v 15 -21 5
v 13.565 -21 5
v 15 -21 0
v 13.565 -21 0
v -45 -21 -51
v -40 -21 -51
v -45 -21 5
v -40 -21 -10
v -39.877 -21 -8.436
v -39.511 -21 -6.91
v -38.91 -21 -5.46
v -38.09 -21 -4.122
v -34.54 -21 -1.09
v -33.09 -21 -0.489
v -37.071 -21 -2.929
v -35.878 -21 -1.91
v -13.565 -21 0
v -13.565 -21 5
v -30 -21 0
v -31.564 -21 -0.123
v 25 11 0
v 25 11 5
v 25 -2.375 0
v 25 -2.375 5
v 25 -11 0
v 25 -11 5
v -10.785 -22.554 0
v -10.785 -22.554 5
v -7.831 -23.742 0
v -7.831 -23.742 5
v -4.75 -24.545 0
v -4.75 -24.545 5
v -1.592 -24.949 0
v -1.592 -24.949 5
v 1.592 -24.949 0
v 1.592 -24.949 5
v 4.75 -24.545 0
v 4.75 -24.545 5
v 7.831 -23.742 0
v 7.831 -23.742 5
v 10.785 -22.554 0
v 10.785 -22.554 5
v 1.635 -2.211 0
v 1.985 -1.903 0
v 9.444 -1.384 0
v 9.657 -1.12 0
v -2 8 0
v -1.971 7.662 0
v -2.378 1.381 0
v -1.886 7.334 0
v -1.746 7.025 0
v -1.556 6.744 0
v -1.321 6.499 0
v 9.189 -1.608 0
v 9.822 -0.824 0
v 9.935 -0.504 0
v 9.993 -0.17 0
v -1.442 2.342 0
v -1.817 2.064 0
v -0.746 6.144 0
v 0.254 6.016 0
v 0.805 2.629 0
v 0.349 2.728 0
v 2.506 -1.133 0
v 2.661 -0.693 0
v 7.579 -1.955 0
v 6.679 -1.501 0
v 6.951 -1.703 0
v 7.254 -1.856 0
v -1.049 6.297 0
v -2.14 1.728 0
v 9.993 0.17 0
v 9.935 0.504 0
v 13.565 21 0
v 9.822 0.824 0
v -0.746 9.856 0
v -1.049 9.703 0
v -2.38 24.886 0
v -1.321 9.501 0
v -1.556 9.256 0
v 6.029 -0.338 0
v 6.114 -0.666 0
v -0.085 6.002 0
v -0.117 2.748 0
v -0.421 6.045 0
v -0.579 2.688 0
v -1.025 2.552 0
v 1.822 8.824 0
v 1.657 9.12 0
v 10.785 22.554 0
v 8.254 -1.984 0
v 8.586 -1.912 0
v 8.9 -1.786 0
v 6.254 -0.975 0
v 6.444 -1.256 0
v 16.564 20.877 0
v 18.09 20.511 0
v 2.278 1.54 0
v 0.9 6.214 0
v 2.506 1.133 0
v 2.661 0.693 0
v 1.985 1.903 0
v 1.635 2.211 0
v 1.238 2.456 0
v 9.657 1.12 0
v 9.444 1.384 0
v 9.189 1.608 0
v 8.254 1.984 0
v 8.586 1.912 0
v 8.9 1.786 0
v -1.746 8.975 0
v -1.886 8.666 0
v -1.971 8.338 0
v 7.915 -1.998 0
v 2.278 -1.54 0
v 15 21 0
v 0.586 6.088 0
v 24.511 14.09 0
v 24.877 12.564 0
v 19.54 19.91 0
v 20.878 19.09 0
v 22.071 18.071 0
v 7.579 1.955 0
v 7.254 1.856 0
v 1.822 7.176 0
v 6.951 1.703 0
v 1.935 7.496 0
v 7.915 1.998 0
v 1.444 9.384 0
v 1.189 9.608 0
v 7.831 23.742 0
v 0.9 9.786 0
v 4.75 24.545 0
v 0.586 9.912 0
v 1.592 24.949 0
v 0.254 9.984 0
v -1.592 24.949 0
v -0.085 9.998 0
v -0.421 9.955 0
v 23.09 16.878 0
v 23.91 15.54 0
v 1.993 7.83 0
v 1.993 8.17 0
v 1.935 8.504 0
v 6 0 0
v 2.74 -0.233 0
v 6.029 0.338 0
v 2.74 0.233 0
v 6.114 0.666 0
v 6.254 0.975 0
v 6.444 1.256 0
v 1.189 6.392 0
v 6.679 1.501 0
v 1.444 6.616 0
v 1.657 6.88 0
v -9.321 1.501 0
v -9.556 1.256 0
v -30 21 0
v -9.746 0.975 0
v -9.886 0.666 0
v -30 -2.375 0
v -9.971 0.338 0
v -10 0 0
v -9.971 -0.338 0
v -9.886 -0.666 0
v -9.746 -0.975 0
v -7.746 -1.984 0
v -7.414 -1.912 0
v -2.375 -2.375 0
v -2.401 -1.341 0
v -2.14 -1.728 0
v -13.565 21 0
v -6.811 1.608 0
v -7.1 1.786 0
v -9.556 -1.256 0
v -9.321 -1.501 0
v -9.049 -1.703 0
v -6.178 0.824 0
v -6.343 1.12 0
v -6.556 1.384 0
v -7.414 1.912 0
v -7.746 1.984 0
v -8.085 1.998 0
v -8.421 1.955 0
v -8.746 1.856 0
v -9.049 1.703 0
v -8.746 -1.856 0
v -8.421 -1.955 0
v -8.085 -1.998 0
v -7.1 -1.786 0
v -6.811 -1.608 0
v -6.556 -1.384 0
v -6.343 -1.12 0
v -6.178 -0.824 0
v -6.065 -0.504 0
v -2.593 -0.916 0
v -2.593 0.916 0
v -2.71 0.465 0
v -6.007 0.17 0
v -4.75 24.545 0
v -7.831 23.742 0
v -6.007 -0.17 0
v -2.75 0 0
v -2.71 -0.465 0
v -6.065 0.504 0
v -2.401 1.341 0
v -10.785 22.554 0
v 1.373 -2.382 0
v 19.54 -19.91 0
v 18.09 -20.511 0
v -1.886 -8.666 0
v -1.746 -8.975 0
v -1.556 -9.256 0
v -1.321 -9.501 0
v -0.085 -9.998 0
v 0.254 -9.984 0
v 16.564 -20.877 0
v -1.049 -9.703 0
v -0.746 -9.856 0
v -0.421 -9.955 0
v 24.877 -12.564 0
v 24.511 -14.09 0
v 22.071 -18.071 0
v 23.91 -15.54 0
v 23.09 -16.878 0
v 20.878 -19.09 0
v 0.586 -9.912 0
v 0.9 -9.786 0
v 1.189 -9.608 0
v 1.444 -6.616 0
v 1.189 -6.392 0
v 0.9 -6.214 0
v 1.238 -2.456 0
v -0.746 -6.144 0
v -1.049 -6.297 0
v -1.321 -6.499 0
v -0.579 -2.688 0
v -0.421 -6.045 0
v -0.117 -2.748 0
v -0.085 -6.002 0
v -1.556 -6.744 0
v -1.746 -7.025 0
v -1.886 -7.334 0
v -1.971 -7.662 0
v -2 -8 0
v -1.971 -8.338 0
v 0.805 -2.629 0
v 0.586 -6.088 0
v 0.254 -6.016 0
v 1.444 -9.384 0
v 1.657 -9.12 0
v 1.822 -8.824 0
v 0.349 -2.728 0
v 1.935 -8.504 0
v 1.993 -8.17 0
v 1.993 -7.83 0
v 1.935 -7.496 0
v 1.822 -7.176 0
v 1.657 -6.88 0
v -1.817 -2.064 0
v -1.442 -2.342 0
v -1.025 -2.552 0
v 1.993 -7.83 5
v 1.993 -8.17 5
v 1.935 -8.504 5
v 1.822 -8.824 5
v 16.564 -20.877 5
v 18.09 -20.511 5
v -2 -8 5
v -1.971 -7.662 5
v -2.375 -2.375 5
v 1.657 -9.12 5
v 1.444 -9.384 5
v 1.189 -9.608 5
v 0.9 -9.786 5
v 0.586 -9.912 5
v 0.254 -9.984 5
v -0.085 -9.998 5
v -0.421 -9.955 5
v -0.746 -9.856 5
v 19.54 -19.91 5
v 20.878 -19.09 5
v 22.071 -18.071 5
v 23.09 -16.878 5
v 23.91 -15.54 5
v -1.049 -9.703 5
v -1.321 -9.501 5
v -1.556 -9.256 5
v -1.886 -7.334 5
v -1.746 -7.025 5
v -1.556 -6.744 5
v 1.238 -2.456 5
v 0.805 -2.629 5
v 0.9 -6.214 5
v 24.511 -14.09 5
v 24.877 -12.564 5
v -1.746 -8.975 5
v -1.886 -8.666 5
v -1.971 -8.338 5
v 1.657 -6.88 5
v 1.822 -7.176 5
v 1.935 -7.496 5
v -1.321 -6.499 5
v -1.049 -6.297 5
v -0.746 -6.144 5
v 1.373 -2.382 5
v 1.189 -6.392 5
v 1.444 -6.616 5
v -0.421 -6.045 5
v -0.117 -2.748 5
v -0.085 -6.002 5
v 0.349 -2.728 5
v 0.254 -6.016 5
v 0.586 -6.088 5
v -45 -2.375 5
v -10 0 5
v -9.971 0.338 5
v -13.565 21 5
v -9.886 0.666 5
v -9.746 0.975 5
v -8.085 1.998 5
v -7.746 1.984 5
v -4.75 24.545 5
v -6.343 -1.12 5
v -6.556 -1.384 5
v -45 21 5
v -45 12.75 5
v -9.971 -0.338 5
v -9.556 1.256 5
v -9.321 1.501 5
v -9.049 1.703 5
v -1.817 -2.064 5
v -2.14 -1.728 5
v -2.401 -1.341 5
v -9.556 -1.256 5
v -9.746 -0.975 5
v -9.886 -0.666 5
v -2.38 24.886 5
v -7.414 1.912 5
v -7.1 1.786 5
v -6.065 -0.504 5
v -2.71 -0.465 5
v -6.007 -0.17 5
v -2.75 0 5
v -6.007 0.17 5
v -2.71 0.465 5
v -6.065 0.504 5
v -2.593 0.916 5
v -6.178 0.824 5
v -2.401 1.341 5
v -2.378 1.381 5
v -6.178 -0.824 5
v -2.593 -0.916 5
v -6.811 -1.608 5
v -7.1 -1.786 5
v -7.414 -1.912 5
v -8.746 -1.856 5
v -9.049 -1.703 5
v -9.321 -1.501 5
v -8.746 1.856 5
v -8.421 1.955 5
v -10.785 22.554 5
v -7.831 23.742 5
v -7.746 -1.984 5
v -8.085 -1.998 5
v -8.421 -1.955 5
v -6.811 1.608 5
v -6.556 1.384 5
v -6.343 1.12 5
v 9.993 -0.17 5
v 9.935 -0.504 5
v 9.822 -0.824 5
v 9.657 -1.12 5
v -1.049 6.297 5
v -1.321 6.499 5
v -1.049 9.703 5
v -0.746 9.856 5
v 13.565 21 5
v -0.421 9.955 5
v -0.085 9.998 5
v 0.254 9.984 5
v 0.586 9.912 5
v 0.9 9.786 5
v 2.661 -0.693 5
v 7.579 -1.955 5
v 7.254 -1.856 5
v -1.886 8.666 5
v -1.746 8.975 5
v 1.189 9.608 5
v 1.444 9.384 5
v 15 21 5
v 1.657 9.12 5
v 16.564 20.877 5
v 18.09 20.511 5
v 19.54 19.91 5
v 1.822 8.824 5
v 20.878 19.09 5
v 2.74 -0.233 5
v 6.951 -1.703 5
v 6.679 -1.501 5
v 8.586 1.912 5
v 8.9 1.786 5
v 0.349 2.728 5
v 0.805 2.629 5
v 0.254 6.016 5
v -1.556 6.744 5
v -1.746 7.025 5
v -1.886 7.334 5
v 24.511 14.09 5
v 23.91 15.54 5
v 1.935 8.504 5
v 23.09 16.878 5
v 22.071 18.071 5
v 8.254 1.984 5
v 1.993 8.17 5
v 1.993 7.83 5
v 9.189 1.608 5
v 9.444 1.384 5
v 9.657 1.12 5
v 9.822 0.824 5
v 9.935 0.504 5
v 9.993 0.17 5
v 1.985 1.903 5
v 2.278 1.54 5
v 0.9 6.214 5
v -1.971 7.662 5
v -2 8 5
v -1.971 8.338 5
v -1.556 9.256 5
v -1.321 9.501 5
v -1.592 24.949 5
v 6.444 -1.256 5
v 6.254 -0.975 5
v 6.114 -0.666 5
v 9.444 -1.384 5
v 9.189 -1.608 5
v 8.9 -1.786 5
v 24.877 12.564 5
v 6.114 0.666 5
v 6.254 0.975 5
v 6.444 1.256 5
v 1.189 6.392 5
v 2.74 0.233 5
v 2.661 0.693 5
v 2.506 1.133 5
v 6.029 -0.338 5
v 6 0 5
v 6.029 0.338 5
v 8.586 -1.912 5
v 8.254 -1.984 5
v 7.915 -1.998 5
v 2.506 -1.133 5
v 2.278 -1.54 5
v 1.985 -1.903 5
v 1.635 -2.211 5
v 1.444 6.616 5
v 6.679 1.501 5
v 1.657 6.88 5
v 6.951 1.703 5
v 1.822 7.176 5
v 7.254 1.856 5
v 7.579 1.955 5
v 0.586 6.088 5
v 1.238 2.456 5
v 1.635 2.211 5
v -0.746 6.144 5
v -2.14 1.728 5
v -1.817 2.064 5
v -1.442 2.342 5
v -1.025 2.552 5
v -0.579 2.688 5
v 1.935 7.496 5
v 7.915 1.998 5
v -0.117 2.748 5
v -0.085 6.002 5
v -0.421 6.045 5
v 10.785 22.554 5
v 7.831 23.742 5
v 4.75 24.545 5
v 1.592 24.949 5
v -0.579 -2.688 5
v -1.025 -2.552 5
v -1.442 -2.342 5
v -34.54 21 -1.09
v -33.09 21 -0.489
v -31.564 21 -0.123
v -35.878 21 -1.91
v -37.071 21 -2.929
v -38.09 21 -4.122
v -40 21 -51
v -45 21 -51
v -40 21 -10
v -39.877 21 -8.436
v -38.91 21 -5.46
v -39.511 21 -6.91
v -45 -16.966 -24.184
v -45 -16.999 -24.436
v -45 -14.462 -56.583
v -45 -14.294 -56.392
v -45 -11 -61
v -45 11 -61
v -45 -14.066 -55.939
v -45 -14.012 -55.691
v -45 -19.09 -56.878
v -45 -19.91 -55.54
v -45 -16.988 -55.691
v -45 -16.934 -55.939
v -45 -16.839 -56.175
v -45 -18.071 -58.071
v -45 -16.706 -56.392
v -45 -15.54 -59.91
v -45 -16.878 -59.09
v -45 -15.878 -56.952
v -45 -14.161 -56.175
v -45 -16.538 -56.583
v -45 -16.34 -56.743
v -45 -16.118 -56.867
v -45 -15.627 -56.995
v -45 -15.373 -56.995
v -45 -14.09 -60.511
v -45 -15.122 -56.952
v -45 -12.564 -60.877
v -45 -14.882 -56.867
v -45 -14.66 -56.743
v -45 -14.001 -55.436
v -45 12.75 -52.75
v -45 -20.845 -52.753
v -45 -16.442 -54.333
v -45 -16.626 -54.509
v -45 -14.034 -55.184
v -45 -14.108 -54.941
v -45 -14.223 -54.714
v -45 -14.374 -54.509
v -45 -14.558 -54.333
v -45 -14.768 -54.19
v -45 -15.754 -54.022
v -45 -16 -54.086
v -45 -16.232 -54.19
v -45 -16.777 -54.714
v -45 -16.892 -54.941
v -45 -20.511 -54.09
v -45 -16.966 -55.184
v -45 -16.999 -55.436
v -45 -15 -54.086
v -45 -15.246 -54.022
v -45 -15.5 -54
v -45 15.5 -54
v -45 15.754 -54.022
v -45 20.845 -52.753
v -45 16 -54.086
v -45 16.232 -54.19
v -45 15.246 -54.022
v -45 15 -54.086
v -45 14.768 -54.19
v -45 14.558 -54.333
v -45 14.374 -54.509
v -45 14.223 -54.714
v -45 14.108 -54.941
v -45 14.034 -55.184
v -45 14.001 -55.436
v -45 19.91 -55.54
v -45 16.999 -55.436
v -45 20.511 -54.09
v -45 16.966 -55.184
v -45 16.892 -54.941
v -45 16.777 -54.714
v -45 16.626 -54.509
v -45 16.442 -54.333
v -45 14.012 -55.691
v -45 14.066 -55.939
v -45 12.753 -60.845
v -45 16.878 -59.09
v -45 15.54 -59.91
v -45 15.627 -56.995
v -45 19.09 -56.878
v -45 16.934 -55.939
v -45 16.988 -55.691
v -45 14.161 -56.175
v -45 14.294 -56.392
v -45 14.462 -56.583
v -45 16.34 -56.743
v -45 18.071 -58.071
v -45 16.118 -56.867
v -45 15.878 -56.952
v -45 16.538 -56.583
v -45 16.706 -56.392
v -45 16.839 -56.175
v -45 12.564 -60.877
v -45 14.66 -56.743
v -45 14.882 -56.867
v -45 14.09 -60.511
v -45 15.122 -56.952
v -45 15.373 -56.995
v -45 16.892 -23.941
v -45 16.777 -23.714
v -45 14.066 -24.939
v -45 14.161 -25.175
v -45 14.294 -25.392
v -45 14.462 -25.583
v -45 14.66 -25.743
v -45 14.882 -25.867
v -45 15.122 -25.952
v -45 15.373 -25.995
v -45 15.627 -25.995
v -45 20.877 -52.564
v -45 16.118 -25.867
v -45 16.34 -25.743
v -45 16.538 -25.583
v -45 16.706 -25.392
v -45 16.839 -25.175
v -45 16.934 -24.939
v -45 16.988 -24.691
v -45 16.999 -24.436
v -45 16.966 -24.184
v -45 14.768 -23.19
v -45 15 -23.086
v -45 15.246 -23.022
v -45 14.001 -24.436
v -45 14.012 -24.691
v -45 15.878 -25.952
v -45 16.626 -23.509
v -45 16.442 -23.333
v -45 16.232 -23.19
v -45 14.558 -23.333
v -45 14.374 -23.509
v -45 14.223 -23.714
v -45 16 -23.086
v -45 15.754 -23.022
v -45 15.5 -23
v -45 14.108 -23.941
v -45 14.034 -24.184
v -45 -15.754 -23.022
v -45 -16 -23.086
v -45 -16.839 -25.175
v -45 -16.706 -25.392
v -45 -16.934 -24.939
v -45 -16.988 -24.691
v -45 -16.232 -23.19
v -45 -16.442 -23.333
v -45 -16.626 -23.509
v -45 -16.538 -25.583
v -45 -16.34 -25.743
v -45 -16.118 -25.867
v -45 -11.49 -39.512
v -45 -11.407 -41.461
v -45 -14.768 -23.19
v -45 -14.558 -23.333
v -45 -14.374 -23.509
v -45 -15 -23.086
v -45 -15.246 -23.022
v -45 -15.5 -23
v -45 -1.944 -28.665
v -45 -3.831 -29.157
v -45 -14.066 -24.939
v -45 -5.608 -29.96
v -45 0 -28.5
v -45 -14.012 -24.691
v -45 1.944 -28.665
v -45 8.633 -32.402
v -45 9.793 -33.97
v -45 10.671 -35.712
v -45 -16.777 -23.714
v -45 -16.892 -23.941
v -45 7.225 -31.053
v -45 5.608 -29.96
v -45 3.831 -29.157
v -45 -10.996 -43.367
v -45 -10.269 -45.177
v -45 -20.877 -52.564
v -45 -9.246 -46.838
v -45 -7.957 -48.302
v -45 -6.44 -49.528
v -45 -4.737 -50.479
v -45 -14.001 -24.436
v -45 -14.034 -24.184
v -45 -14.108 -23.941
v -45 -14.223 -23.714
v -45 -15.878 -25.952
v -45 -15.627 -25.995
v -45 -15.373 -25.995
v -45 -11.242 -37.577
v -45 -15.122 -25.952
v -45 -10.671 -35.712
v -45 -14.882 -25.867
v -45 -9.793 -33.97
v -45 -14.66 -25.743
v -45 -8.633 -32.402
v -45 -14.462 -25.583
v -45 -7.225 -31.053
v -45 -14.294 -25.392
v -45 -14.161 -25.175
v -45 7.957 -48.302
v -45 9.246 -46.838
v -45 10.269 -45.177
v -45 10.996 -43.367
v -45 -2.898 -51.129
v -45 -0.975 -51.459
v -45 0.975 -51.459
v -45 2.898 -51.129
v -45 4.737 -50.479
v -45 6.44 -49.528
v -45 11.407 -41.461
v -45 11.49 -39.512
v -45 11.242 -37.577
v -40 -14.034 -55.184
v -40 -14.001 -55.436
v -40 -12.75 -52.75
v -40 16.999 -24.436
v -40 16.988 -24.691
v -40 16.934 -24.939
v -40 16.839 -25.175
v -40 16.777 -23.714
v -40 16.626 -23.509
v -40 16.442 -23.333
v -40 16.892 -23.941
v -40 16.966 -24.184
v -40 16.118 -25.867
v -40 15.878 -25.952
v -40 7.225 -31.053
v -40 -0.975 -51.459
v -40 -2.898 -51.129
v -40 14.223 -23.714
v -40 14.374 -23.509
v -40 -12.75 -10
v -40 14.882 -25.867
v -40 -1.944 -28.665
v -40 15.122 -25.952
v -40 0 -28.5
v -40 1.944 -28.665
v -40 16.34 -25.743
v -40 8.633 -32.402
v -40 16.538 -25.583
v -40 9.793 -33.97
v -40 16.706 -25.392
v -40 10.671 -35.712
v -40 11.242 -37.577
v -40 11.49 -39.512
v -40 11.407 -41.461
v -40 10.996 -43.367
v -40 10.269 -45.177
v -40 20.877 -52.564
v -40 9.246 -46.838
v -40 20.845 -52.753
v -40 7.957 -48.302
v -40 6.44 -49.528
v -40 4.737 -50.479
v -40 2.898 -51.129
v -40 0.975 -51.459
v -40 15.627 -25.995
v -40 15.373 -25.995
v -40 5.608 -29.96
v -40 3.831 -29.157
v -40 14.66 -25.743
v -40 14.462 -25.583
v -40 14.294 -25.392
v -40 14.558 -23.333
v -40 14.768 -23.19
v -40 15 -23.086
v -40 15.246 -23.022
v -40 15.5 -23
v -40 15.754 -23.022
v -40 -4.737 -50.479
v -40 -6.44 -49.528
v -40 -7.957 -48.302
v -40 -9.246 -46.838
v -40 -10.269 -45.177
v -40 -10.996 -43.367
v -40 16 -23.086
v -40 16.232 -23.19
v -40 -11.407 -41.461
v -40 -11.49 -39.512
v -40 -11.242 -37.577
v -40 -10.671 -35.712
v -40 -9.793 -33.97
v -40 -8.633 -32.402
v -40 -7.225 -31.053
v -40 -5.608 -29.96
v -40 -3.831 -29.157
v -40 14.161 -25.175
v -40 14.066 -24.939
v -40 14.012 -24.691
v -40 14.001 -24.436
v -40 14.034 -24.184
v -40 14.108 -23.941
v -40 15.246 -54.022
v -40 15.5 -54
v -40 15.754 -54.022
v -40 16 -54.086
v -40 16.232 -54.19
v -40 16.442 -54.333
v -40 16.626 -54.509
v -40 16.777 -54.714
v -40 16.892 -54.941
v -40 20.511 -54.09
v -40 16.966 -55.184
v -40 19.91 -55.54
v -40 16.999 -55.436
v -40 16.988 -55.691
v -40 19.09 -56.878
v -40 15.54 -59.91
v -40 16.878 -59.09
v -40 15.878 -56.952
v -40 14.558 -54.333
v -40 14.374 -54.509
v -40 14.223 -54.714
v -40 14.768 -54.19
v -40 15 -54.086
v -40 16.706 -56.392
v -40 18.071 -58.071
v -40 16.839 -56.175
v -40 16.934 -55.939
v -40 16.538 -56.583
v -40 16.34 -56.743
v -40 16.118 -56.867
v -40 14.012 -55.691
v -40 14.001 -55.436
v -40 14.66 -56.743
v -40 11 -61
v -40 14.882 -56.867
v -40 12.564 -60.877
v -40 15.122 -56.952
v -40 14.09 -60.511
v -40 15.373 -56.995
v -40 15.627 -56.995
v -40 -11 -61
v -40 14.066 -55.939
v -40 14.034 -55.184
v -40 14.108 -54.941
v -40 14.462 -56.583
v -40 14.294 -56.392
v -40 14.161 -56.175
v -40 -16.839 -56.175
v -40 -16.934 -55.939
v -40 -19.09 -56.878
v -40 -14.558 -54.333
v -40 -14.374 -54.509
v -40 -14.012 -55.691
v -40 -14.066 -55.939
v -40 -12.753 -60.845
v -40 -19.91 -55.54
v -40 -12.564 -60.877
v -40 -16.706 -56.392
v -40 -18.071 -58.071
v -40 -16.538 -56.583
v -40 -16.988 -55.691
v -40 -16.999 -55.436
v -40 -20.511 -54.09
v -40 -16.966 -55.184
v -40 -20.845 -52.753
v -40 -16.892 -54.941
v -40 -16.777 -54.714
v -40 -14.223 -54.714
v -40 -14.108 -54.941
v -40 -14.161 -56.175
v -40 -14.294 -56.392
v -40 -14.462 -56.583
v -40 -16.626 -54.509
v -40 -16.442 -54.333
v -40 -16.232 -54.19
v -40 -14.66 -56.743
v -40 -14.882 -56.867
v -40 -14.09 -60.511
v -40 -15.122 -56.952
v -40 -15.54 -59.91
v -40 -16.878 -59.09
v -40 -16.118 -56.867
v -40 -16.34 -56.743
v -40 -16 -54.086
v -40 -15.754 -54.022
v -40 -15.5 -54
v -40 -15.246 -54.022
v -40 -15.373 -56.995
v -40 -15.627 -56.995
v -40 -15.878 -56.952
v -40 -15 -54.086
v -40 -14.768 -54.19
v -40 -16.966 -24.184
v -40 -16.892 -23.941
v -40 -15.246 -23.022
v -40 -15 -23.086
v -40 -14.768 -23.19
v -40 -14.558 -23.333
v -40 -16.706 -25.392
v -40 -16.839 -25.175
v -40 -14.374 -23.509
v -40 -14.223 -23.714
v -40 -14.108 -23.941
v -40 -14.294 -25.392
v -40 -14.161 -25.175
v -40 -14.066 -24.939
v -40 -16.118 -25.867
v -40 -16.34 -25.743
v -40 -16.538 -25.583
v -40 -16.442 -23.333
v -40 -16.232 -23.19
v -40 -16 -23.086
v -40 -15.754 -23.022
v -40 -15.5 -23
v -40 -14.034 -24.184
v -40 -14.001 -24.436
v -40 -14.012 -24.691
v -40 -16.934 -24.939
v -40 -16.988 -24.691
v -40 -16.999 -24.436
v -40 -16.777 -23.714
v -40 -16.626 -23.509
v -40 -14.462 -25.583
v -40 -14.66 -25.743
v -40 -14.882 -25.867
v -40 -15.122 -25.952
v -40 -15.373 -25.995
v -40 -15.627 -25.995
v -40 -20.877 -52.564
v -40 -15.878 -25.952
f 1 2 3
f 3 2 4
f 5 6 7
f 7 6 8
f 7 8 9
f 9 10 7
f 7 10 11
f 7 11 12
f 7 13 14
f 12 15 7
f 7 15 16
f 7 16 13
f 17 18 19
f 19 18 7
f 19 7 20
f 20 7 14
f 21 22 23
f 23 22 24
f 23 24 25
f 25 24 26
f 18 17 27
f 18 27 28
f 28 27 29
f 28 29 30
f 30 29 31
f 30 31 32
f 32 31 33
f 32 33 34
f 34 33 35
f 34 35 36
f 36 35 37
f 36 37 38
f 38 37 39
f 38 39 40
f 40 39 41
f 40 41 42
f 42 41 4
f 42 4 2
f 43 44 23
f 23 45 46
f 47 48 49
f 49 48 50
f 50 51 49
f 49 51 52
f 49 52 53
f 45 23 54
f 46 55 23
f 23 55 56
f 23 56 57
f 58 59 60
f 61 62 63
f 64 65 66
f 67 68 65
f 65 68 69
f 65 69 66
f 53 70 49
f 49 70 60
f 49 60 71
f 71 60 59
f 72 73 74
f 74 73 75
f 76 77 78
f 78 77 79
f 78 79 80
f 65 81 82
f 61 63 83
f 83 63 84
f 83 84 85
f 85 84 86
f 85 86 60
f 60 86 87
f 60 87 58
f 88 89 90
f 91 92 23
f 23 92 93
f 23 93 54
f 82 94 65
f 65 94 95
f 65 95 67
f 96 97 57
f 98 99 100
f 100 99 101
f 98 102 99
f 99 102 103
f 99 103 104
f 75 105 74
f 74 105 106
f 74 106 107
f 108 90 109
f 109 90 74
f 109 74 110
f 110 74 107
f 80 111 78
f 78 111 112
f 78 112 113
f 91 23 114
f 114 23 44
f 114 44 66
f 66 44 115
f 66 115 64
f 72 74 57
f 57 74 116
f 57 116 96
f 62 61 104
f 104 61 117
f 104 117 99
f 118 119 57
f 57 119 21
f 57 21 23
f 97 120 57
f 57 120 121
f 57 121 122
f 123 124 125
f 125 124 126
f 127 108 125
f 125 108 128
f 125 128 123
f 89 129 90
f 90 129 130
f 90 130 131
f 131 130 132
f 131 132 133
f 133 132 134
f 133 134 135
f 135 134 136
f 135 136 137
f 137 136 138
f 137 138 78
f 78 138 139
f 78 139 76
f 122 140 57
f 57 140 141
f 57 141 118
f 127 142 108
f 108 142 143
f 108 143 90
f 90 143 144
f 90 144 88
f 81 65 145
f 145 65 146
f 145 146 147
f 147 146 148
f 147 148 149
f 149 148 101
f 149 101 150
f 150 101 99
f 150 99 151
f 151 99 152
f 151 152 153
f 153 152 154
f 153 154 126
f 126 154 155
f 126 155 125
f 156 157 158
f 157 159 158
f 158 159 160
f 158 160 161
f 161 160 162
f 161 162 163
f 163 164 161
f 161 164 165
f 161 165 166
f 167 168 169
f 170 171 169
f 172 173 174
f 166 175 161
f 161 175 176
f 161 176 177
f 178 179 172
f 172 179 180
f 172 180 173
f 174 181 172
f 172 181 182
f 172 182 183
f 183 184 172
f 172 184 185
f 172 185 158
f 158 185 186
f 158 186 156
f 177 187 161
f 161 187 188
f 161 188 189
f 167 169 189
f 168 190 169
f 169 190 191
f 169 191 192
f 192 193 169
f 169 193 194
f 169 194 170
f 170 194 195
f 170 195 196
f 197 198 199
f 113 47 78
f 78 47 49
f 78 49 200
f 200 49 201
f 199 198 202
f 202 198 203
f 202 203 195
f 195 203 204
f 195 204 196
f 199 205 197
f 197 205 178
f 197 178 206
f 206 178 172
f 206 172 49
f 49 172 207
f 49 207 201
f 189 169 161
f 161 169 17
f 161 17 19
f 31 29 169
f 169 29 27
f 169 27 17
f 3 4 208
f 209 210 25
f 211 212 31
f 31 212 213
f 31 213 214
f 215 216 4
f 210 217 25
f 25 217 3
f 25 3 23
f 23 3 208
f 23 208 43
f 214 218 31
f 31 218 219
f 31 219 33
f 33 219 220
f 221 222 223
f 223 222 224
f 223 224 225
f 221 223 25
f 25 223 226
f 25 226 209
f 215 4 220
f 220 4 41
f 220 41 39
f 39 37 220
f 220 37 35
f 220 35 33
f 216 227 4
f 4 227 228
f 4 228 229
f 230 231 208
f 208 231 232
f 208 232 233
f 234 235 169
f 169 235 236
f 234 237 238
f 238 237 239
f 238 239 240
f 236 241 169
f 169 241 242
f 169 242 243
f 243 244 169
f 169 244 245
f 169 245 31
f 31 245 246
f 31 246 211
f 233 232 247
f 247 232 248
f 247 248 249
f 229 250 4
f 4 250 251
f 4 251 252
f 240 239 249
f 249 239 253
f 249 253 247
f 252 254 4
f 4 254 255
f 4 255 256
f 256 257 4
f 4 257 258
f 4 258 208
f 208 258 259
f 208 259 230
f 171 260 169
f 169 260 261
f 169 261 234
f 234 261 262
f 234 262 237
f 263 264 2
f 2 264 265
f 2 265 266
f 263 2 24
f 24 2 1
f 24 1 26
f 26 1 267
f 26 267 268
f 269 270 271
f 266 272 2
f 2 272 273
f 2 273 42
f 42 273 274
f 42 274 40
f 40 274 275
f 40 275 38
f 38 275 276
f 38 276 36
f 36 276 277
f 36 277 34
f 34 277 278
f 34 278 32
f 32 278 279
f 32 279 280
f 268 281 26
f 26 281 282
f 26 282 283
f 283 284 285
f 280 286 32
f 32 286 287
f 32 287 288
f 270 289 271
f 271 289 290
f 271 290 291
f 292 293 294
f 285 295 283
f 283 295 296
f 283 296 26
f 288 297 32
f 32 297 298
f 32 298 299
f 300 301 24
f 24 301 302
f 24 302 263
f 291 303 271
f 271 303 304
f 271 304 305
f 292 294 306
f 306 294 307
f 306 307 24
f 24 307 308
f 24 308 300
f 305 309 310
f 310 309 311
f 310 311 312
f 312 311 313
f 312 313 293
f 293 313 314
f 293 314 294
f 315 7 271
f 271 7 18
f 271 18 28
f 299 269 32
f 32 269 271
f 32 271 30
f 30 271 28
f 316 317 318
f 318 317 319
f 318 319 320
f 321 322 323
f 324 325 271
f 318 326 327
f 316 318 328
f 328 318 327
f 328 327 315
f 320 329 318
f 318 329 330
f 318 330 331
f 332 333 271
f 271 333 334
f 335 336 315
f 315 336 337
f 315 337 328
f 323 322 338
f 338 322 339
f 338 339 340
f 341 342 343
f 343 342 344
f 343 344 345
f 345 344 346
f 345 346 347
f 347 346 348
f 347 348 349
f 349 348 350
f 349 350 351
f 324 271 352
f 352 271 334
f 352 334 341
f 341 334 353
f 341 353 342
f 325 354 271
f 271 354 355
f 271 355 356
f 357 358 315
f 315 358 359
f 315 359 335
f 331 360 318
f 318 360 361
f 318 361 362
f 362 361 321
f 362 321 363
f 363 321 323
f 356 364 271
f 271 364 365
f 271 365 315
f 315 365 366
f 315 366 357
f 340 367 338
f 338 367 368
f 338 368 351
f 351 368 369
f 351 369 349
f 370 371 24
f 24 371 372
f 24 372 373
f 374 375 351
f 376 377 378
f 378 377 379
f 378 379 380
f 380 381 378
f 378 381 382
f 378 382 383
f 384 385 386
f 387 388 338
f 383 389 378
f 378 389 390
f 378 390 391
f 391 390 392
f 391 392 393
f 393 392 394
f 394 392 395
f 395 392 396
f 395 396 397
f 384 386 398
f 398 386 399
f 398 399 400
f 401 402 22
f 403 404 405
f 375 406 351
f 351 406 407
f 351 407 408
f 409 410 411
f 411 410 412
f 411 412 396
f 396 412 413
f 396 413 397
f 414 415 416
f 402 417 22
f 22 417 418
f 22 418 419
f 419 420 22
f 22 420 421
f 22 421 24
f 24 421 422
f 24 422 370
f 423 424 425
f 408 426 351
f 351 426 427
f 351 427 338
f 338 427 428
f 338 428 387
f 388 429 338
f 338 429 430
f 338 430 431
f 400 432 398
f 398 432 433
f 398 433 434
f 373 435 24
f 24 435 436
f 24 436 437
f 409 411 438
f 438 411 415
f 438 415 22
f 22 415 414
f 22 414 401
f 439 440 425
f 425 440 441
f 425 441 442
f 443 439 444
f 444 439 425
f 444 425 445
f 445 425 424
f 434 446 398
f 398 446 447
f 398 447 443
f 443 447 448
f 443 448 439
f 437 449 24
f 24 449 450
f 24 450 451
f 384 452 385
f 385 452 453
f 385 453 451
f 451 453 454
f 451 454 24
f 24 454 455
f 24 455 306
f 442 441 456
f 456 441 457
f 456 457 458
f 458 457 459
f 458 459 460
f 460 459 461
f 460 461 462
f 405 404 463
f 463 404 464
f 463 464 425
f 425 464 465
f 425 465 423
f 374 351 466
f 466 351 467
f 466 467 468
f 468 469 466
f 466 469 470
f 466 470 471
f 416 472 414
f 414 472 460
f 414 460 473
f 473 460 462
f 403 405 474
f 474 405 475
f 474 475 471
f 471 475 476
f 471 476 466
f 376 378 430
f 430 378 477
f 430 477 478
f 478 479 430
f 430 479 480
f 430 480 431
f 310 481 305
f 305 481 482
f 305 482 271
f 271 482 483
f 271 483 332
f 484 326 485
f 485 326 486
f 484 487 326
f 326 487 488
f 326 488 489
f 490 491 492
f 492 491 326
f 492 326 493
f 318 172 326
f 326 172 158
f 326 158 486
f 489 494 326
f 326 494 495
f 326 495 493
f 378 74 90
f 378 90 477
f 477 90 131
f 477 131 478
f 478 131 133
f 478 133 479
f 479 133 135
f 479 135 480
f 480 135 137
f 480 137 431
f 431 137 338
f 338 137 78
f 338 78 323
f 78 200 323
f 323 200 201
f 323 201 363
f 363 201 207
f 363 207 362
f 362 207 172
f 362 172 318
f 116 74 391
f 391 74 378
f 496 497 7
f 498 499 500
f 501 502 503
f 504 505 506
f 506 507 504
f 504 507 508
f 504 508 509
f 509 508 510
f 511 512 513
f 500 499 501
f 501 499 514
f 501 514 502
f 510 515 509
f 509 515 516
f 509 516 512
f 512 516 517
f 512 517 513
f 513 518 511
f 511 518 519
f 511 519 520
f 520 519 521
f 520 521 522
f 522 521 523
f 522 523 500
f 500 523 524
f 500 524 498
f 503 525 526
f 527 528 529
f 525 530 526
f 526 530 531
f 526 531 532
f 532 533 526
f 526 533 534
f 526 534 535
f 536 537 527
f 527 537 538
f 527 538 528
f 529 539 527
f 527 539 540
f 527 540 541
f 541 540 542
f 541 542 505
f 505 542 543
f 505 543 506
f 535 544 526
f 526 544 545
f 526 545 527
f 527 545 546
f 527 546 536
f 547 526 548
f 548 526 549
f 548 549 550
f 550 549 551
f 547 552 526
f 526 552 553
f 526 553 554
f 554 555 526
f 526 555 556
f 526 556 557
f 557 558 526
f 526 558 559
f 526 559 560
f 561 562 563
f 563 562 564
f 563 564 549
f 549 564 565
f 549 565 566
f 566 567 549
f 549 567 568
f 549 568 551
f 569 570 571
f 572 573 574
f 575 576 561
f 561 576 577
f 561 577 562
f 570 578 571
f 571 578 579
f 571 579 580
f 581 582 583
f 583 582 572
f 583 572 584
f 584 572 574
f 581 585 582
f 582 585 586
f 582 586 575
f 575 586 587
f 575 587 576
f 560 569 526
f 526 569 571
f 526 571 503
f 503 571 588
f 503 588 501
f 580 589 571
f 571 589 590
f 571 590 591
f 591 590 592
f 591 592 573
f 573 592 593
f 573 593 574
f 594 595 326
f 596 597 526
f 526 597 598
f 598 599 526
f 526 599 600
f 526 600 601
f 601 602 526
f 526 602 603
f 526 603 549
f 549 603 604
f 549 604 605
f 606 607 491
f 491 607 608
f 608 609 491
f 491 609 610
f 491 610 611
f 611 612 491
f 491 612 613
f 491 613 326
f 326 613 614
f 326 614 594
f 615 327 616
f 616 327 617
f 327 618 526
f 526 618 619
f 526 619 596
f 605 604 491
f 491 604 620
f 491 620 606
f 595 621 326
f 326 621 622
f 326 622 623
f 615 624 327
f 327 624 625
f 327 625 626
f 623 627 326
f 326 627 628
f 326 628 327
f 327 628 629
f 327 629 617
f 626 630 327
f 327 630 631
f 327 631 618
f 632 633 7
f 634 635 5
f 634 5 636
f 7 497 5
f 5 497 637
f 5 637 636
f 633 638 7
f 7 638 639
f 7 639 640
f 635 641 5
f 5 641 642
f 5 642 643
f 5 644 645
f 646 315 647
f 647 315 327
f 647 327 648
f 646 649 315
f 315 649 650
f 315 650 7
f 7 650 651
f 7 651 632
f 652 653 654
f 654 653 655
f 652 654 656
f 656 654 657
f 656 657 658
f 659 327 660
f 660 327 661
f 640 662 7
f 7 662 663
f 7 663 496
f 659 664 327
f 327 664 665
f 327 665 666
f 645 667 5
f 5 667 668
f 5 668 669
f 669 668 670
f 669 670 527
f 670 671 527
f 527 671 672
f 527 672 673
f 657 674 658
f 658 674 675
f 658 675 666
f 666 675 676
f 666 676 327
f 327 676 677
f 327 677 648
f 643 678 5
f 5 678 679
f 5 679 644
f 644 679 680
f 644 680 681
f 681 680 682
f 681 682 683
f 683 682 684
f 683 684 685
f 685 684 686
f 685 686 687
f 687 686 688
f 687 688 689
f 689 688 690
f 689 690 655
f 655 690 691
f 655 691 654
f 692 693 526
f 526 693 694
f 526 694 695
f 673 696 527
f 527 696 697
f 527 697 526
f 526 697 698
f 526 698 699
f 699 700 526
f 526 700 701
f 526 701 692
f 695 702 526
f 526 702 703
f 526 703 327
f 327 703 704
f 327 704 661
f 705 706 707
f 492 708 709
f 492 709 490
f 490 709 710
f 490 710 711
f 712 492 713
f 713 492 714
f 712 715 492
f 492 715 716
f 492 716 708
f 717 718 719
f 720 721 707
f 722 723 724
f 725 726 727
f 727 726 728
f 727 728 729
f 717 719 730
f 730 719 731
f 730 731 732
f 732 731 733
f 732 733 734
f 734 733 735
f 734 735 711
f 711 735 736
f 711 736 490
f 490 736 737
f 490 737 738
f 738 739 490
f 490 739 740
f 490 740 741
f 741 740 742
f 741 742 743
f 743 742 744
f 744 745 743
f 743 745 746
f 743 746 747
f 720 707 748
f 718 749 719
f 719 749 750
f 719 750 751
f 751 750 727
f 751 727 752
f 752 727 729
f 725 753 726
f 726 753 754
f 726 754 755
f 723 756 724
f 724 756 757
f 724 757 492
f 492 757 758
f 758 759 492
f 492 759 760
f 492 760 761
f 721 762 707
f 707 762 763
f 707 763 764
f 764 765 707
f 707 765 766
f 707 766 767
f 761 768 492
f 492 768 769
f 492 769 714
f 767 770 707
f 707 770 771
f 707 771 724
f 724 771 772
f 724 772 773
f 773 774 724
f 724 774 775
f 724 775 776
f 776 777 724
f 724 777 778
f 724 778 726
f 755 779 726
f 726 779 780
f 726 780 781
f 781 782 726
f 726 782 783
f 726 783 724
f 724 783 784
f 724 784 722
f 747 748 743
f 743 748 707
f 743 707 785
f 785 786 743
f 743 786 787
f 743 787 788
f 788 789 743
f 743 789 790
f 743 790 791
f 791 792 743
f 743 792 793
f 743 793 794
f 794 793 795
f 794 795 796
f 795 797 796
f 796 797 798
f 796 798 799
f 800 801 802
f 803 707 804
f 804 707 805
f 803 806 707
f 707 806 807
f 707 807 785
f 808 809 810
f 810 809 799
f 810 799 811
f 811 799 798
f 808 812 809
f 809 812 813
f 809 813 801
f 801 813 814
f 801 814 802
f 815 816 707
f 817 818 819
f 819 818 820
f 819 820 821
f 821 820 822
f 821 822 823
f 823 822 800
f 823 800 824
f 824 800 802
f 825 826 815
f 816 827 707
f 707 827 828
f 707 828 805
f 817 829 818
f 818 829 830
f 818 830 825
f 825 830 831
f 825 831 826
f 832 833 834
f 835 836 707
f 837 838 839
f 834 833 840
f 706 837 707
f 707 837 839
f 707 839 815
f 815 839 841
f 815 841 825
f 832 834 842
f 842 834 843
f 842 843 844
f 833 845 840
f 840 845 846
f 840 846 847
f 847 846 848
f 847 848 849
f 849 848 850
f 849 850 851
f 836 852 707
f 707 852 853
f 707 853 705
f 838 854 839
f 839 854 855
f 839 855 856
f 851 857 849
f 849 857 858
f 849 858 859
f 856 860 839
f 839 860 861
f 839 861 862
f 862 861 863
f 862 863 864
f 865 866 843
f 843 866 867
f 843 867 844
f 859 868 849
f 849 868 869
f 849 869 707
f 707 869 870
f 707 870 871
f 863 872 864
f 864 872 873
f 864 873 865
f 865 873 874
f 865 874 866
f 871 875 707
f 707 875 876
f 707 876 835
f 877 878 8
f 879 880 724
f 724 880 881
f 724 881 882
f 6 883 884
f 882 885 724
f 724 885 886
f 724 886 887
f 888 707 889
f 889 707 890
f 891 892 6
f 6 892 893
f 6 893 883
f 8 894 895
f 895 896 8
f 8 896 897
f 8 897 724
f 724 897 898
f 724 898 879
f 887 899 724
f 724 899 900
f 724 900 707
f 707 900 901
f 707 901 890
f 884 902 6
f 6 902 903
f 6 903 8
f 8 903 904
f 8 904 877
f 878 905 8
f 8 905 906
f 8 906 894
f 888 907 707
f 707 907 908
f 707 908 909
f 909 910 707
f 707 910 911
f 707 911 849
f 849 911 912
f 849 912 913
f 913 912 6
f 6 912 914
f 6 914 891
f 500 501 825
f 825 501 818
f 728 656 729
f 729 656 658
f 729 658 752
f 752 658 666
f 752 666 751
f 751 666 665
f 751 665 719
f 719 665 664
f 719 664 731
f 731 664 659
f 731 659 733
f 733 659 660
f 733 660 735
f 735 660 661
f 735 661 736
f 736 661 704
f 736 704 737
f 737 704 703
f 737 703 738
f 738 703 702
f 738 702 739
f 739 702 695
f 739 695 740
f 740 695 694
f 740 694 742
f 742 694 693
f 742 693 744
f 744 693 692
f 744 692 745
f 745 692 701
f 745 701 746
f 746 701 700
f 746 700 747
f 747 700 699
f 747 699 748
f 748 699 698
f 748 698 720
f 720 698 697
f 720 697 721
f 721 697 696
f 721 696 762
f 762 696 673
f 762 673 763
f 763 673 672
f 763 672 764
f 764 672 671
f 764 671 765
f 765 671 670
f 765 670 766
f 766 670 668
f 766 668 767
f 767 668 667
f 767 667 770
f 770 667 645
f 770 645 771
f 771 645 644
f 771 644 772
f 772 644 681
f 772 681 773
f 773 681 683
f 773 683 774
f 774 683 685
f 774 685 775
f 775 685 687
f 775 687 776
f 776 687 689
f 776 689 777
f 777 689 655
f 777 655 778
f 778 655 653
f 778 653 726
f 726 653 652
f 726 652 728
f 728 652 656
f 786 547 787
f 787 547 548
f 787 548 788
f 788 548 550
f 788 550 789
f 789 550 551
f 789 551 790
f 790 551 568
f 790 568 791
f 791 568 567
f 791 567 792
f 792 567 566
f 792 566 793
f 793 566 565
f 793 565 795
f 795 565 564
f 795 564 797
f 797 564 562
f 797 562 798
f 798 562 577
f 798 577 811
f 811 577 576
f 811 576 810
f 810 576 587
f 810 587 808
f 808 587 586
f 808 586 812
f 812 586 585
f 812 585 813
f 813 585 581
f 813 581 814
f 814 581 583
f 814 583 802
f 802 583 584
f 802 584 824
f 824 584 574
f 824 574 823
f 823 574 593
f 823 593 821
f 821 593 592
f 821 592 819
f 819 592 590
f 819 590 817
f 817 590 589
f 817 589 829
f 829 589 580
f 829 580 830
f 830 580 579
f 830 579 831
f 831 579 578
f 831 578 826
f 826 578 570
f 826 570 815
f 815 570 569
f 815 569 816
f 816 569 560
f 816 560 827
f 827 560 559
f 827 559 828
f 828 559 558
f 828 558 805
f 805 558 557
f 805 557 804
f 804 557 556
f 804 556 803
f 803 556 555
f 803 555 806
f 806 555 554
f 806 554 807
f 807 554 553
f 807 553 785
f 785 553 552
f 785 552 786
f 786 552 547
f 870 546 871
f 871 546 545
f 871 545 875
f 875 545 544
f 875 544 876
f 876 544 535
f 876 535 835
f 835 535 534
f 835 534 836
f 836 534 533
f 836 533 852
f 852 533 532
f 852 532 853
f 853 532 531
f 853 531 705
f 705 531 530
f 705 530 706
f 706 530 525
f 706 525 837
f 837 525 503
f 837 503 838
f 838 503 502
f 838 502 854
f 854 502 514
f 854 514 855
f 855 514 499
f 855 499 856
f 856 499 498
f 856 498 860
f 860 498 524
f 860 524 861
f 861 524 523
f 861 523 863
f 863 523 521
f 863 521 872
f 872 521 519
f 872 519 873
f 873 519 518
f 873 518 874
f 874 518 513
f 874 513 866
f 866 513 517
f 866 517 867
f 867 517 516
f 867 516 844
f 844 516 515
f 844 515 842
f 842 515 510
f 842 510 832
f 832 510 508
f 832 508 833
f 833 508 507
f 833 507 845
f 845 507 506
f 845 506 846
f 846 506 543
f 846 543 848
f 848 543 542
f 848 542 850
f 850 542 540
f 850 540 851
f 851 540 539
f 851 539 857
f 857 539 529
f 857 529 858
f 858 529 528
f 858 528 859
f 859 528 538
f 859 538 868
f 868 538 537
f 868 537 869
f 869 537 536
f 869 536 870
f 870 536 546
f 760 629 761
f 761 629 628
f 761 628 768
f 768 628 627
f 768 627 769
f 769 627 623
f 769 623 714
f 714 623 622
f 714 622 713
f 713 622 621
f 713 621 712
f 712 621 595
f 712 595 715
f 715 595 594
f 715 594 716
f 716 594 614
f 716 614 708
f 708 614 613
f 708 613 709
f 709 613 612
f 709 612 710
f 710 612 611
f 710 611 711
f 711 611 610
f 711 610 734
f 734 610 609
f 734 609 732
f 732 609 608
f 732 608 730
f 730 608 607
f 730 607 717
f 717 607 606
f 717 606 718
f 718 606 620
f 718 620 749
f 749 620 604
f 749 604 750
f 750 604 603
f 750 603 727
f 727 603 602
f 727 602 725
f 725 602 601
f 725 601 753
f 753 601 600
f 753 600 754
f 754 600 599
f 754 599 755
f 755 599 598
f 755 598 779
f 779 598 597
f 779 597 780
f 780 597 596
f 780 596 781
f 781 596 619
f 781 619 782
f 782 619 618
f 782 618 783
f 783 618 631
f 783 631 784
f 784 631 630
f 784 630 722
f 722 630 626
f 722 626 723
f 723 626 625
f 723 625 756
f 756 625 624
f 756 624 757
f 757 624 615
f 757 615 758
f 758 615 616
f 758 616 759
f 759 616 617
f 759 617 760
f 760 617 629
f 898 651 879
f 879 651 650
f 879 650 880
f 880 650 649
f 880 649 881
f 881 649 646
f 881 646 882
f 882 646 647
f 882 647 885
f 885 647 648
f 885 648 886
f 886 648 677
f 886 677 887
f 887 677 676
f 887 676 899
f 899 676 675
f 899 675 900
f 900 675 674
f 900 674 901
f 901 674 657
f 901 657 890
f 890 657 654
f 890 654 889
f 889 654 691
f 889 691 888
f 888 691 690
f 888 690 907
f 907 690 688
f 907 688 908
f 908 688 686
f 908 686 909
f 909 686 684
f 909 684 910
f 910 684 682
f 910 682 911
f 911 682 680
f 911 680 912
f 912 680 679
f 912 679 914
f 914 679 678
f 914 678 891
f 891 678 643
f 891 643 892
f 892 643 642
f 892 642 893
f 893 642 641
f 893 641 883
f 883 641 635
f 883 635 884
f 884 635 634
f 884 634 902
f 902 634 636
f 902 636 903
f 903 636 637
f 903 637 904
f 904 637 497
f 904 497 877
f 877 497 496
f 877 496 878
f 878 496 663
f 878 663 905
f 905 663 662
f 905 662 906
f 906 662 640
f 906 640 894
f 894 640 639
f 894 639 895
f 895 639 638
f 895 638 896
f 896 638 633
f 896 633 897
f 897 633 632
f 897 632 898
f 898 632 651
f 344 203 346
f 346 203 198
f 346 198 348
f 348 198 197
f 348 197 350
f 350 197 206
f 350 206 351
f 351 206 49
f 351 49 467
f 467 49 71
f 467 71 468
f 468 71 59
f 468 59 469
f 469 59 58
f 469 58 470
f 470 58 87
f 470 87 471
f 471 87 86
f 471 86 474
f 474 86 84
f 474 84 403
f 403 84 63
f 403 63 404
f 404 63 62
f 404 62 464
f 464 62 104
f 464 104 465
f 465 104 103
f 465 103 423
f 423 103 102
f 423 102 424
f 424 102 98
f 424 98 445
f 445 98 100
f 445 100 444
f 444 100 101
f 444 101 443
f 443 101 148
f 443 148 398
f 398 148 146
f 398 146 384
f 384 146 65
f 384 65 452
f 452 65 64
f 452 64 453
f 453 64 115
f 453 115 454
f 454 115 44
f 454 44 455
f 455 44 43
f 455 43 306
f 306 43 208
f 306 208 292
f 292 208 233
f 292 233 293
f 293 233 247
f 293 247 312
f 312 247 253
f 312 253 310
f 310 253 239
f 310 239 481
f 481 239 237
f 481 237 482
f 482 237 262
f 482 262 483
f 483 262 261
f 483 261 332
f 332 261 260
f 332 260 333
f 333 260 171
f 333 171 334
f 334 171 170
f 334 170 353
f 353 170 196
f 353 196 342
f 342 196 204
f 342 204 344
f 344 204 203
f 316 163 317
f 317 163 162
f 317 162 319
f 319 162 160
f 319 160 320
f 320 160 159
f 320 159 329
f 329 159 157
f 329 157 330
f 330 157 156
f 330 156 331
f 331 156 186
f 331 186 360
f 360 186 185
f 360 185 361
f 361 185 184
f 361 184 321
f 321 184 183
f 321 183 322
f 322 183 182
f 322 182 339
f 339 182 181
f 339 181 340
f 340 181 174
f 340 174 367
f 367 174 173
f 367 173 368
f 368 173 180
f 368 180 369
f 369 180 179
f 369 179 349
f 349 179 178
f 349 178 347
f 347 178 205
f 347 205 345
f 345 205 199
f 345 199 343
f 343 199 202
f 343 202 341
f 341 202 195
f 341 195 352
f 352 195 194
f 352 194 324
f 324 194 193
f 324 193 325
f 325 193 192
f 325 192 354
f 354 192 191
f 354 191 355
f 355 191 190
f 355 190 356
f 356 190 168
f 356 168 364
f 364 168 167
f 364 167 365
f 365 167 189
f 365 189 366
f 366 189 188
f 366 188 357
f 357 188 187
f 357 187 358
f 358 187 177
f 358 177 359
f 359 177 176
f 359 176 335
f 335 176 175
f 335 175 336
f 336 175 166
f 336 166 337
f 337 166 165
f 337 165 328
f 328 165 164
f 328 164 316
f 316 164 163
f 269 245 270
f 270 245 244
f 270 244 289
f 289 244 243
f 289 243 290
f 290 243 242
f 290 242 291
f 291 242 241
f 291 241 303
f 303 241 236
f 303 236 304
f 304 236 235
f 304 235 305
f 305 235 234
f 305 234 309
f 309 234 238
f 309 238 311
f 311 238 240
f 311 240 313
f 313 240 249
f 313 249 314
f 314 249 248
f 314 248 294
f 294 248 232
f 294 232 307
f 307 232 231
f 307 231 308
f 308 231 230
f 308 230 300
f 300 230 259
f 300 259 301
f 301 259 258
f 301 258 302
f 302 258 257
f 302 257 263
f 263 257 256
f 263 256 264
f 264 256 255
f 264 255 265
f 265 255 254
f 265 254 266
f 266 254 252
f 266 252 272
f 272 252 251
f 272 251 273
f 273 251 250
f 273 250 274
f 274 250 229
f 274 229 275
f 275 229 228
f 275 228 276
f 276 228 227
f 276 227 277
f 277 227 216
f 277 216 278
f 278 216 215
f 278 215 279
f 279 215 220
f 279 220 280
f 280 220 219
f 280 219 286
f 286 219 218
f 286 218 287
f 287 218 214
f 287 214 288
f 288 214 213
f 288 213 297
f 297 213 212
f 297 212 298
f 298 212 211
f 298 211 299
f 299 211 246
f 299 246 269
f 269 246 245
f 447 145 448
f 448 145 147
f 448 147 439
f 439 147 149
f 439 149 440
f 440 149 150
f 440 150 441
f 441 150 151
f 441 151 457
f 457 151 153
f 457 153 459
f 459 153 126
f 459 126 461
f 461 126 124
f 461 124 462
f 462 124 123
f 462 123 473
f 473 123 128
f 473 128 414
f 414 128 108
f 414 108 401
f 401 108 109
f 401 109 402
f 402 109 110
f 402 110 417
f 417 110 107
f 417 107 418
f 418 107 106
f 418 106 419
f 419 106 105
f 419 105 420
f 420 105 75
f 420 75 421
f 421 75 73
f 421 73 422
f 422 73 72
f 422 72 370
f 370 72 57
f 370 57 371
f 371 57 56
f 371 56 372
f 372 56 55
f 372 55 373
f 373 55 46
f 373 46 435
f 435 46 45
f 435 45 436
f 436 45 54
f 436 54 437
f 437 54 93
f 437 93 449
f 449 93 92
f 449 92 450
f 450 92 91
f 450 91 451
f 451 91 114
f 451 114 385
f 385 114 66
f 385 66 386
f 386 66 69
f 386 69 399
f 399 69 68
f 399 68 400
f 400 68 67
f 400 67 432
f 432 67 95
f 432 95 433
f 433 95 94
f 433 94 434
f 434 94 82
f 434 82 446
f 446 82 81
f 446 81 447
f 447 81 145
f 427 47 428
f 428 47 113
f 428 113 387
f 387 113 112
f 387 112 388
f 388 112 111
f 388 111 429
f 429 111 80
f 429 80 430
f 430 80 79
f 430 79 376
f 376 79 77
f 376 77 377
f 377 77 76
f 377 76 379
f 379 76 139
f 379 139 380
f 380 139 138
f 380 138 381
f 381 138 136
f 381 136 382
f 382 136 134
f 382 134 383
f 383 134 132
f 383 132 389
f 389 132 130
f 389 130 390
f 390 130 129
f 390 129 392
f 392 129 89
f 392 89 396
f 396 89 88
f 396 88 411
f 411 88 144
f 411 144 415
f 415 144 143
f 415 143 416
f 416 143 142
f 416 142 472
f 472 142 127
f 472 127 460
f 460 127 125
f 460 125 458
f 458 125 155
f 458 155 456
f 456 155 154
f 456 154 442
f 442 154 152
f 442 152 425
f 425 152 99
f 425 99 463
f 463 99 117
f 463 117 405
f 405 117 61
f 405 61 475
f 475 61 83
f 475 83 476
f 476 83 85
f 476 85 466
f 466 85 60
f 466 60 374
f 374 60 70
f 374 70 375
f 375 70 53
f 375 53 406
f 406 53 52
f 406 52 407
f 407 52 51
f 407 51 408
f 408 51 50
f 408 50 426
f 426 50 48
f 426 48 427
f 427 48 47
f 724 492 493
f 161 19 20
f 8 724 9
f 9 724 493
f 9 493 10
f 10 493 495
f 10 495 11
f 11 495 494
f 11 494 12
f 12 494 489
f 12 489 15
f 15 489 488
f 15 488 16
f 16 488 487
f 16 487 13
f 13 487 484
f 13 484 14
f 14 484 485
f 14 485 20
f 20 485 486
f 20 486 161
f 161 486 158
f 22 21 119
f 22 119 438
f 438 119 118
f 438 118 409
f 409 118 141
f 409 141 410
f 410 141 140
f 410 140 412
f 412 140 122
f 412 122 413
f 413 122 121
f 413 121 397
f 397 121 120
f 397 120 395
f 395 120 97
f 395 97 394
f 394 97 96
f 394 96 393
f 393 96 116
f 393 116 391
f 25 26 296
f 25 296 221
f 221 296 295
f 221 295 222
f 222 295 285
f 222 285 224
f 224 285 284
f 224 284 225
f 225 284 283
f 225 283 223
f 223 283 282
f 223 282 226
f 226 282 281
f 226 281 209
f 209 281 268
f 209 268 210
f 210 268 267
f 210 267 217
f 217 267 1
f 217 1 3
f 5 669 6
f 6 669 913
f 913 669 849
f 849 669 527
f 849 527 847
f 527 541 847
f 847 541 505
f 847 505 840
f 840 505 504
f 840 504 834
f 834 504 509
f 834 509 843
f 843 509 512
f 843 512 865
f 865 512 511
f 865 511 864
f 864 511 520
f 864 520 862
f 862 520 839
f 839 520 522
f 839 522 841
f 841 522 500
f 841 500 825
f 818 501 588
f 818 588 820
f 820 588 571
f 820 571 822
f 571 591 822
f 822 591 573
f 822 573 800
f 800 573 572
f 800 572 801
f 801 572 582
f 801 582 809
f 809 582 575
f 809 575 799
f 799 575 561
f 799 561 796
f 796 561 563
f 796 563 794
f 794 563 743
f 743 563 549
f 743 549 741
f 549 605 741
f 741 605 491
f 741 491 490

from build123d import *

# Parameters (mm, degrees)
EXTRUDE_1_DEPTH     = 5
SKETCH_2_W          = 5
SKETCH_2_H          = 42
EXTRUDE_2_DEPTH     = 66
SKETCH_3_R          = 11.5
SKETCH_3_R_2        = 1.5
CUT_EXTRUDE_1_DEPTH = 5
SKETCH_5_R          = 2
SKETCH_5_R_2        = 2.75
CUT_EXTRUDE_2_DEPTH = 80.818544211
FILLET_1_R          = 10
FILLET_2_R          = 10


with BuildPart() as part:
    # 草图1 → 凸台-拉伸1 (new body)
    with BuildSketch(Plane.XY):
        with BuildLine():
            Line((13.564659966, -21), (25, -21))
            Line((25, -21), (25, 21))
            Line((25, 21), (13.564659966, 21))
            ThreePointArc((13.564659966, 21), (0, 25), (-13.564659966, 21))
            Line((-13.564659966, 21), (-40, 21))
            Line((-40, 21), (-40, -21))
            Line((-40, -21), (-13.564659966, -21))
            ThreePointArc((-13.564659966, -21), (0, -25), (13.564659966, -21))
        make_face()
    extrude(amount=EXTRUDE_1_DEPTH)

    # 草图2 → 凸台-拉伸2 (add)
    with BuildSketch(Plane.XY.offset(5)):
        with Locations((-42.5, 0)):
            Rectangle(SKETCH_2_W, SKETCH_2_H)
    extrude(amount=-EXTRUDE_2_DEPTH)

    # 草图3 → 切除-拉伸1 (cut)
    with BuildSketch(Plane.ZY.offset(45)):
        with Locations((-40, 0)):
            Circle(SKETCH_3_R)
        with Locations((-55.5, 15.5)):
            Circle(SKETCH_3_R_2)
        with Locations((-55.5, -15.5)):
            Circle(SKETCH_3_R_2)
        with Locations((-24.5, 15.5)):
            Circle(SKETCH_3_R_2)
        with Locations((-24.5, -15.5)):
            Circle(SKETCH_3_R_2)
        with Locations((34.5, 74.5)):
            Circle(SKETCH_3_R_2)
    extrude(amount=-CUT_EXTRUDE_1_DEPTH, mode=Mode.SUBTRACT)

    # 草图5 → 切除-拉伸2 (cut, through all)
    with BuildSketch(Plane(origin=(0, 0, 0), x_dir=(-1, 0, 0), z_dir=(0, 0, -1))):
        with Locations((0, 8)):
            Circle(SKETCH_5_R)
        with Locations((8, 0)):
            Circle(SKETCH_5_R)
        with Locations((0, -8)):
            Circle(SKETCH_5_R)
        with Locations((-8, 0)):
            Circle(SKETCH_5_R)
        Circle(SKETCH_5_R_2)
    extrude(amount=-CUT_EXTRUDE_2_DEPTH, mode=Mode.SUBTRACT)

    # 圆角1
    fillet_1_edges = [part.edges().sort_by_distance(p)[0] for p in [
        (-40, 0, 0),
    ]]
    fillet(fillet_1_edges, radius=FILLET_1_R)

    # 圆角2
    fillet_2_edges = [part.edges().sort_by_distance(p)[0] for p in [
        (25, -21, 2.5),
        (25, 21, 2.5),
        (-42.5, 21, -61),
        (-42.5, -21, -61),
    ]]
    fillet(fillet_2_edges, radius=FILLET_2_R)


solid = part.part
